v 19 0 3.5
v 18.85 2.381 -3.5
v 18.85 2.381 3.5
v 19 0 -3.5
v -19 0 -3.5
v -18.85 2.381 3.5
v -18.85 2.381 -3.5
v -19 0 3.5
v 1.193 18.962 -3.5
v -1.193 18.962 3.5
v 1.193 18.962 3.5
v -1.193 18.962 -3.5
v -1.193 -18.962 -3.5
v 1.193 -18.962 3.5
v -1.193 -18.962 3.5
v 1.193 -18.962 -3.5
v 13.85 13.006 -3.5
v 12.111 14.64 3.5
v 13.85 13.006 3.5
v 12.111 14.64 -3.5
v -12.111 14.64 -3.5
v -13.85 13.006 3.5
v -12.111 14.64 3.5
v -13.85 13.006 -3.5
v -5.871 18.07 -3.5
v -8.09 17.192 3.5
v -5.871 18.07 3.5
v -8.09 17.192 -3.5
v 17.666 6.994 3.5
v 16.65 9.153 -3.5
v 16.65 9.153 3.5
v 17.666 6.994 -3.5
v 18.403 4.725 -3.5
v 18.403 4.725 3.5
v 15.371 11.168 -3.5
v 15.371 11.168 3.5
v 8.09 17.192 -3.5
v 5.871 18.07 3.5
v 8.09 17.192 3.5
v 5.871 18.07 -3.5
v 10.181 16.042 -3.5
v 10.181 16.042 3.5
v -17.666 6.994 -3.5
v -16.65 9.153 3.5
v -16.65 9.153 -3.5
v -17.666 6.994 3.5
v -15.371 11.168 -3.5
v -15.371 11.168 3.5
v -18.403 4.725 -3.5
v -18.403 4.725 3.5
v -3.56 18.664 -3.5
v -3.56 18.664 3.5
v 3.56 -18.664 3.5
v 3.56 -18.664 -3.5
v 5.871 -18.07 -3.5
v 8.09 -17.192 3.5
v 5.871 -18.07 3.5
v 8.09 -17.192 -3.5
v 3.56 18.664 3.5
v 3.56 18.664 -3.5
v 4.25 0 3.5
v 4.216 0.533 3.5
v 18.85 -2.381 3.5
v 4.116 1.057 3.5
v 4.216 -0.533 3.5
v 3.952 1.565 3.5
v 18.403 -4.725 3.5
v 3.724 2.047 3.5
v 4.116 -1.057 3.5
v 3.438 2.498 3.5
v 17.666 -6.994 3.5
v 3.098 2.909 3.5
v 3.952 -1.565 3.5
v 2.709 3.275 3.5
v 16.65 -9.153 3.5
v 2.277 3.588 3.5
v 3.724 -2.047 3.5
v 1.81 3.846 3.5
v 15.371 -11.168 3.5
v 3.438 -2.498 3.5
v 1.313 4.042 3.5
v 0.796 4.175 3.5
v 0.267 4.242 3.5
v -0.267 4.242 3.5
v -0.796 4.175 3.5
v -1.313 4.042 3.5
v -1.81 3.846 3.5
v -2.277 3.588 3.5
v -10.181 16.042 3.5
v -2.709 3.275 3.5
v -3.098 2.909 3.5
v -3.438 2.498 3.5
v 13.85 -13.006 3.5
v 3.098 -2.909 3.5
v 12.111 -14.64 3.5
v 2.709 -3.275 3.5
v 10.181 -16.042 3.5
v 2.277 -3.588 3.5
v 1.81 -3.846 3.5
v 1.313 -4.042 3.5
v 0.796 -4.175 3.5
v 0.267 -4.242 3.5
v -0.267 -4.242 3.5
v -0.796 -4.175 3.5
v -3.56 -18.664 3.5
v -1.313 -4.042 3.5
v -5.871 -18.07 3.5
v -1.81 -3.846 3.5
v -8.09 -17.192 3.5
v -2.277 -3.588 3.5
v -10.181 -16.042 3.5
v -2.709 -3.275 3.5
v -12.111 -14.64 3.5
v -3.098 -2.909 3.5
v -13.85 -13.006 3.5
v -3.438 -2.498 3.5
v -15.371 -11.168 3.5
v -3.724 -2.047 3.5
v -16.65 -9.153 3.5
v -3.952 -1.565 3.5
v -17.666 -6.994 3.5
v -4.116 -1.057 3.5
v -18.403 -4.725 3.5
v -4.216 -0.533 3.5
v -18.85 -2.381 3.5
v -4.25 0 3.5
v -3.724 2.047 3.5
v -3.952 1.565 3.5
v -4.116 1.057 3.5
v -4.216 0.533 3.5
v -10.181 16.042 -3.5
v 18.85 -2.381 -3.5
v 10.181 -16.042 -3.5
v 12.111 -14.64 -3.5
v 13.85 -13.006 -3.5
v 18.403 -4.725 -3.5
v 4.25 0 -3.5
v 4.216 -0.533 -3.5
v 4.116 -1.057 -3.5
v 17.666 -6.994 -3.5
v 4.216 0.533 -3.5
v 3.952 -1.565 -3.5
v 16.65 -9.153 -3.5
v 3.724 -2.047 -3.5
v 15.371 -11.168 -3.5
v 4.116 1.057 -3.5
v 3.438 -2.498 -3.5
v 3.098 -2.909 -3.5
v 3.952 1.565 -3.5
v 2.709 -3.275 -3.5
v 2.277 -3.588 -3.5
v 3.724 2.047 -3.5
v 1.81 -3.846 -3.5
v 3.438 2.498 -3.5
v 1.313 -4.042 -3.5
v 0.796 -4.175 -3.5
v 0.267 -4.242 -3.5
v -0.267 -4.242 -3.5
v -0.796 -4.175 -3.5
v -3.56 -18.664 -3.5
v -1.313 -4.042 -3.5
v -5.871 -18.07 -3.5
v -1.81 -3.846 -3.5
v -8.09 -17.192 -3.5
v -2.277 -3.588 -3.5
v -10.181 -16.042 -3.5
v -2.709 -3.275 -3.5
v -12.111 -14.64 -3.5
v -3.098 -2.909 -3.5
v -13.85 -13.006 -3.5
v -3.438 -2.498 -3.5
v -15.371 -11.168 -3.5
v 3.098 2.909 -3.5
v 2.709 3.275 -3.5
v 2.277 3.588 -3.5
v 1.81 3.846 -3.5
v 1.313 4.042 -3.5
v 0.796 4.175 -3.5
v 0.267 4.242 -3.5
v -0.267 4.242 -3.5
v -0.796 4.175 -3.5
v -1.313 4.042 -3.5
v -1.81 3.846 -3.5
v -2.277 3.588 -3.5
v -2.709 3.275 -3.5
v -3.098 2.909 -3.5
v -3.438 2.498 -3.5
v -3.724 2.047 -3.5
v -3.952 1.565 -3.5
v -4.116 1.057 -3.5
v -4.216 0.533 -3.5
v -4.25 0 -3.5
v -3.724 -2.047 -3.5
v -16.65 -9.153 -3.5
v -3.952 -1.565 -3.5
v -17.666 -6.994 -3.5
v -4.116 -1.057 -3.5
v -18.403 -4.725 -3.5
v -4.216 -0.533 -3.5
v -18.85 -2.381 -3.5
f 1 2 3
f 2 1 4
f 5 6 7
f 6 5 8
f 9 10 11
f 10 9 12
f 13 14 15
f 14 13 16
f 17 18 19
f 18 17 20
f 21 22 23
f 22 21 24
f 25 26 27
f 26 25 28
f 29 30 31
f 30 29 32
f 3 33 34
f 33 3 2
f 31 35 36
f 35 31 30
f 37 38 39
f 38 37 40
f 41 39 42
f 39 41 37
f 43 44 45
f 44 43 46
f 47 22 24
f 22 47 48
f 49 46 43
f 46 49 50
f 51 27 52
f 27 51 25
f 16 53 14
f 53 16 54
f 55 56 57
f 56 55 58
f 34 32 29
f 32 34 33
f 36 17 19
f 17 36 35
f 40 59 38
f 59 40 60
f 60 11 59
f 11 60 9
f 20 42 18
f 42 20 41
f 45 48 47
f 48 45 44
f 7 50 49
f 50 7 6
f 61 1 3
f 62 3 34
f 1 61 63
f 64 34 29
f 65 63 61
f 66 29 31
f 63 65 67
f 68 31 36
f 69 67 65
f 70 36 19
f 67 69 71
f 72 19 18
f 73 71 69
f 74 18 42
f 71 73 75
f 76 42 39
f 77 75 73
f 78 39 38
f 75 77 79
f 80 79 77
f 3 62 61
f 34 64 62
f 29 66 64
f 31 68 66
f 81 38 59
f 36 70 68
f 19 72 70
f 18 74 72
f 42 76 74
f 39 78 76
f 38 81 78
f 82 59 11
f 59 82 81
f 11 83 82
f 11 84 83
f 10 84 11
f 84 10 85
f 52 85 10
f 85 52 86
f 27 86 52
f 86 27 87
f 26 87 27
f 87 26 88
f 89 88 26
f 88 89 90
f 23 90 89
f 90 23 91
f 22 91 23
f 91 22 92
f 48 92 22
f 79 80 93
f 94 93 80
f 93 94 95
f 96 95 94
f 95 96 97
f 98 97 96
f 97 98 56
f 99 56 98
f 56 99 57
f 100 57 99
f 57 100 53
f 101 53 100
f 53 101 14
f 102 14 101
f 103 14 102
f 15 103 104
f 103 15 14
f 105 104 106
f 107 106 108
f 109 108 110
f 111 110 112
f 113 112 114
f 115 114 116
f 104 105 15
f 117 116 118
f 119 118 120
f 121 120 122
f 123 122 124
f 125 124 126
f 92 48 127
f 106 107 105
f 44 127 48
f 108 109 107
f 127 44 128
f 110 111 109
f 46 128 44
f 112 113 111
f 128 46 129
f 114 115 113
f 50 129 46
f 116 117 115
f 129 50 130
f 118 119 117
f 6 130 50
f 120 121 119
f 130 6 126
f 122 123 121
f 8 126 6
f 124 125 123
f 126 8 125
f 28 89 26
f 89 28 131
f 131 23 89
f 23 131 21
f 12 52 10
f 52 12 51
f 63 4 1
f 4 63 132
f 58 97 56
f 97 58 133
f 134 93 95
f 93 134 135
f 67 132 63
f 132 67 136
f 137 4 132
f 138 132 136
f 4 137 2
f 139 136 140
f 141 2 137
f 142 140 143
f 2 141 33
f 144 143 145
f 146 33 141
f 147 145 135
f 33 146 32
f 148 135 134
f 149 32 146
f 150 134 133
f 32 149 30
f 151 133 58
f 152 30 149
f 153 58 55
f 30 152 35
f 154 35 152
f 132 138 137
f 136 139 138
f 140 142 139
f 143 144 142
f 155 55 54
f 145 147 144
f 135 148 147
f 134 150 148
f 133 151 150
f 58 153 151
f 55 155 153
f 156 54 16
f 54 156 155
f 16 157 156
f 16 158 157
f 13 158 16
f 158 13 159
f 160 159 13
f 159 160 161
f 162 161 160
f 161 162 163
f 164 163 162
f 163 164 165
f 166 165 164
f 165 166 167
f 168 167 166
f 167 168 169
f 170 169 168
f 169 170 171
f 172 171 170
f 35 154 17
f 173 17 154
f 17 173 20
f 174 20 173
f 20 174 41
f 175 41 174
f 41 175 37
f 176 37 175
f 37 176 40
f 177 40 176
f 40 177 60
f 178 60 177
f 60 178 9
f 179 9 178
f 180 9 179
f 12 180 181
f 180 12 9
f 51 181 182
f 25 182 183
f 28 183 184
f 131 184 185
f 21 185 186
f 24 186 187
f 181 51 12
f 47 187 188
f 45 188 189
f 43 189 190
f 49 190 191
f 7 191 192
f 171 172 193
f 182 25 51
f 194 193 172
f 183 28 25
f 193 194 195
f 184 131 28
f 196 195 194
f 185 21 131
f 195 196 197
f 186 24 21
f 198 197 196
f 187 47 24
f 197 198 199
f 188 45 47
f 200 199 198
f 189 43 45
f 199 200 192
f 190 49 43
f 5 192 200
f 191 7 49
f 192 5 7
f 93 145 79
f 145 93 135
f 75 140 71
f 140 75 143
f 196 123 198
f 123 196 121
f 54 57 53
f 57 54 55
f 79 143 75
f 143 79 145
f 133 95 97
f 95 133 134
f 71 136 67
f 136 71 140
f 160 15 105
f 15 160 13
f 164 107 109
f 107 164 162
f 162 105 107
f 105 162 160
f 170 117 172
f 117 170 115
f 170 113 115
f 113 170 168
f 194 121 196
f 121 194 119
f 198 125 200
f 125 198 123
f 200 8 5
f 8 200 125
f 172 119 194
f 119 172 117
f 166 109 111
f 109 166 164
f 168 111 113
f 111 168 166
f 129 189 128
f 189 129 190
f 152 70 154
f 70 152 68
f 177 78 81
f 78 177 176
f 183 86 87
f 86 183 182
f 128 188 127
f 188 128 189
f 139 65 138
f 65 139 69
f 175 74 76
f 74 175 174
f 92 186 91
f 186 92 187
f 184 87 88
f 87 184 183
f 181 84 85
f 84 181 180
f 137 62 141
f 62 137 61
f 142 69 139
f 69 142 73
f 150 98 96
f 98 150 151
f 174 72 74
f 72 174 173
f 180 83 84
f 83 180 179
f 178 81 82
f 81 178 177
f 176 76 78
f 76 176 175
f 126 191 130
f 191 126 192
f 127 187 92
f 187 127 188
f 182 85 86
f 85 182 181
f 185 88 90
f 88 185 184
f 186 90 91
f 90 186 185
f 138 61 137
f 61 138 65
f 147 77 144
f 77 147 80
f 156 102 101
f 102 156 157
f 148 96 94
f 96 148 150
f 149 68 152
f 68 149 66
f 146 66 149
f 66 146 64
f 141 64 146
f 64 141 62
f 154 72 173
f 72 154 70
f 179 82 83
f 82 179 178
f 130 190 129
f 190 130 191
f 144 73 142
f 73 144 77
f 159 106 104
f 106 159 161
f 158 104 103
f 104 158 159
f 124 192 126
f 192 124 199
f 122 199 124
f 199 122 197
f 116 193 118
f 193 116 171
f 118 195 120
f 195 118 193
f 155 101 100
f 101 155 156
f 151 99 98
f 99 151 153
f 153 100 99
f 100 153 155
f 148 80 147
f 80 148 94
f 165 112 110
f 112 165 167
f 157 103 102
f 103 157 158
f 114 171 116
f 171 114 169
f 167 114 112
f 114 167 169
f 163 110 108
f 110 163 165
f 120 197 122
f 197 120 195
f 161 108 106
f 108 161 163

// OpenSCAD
$fn = 50;


difference() {
	union() {
		translate(v = [0, 0, -3.5000000000]) {
			cylinder(h = 7, r = 19.0000000000);
		}
	}
	union() {
		translate(v = [0, 0, -100.0000000000]) {
			cylinder(h = 200, r = 4.2500000000);
		}
	}
}
